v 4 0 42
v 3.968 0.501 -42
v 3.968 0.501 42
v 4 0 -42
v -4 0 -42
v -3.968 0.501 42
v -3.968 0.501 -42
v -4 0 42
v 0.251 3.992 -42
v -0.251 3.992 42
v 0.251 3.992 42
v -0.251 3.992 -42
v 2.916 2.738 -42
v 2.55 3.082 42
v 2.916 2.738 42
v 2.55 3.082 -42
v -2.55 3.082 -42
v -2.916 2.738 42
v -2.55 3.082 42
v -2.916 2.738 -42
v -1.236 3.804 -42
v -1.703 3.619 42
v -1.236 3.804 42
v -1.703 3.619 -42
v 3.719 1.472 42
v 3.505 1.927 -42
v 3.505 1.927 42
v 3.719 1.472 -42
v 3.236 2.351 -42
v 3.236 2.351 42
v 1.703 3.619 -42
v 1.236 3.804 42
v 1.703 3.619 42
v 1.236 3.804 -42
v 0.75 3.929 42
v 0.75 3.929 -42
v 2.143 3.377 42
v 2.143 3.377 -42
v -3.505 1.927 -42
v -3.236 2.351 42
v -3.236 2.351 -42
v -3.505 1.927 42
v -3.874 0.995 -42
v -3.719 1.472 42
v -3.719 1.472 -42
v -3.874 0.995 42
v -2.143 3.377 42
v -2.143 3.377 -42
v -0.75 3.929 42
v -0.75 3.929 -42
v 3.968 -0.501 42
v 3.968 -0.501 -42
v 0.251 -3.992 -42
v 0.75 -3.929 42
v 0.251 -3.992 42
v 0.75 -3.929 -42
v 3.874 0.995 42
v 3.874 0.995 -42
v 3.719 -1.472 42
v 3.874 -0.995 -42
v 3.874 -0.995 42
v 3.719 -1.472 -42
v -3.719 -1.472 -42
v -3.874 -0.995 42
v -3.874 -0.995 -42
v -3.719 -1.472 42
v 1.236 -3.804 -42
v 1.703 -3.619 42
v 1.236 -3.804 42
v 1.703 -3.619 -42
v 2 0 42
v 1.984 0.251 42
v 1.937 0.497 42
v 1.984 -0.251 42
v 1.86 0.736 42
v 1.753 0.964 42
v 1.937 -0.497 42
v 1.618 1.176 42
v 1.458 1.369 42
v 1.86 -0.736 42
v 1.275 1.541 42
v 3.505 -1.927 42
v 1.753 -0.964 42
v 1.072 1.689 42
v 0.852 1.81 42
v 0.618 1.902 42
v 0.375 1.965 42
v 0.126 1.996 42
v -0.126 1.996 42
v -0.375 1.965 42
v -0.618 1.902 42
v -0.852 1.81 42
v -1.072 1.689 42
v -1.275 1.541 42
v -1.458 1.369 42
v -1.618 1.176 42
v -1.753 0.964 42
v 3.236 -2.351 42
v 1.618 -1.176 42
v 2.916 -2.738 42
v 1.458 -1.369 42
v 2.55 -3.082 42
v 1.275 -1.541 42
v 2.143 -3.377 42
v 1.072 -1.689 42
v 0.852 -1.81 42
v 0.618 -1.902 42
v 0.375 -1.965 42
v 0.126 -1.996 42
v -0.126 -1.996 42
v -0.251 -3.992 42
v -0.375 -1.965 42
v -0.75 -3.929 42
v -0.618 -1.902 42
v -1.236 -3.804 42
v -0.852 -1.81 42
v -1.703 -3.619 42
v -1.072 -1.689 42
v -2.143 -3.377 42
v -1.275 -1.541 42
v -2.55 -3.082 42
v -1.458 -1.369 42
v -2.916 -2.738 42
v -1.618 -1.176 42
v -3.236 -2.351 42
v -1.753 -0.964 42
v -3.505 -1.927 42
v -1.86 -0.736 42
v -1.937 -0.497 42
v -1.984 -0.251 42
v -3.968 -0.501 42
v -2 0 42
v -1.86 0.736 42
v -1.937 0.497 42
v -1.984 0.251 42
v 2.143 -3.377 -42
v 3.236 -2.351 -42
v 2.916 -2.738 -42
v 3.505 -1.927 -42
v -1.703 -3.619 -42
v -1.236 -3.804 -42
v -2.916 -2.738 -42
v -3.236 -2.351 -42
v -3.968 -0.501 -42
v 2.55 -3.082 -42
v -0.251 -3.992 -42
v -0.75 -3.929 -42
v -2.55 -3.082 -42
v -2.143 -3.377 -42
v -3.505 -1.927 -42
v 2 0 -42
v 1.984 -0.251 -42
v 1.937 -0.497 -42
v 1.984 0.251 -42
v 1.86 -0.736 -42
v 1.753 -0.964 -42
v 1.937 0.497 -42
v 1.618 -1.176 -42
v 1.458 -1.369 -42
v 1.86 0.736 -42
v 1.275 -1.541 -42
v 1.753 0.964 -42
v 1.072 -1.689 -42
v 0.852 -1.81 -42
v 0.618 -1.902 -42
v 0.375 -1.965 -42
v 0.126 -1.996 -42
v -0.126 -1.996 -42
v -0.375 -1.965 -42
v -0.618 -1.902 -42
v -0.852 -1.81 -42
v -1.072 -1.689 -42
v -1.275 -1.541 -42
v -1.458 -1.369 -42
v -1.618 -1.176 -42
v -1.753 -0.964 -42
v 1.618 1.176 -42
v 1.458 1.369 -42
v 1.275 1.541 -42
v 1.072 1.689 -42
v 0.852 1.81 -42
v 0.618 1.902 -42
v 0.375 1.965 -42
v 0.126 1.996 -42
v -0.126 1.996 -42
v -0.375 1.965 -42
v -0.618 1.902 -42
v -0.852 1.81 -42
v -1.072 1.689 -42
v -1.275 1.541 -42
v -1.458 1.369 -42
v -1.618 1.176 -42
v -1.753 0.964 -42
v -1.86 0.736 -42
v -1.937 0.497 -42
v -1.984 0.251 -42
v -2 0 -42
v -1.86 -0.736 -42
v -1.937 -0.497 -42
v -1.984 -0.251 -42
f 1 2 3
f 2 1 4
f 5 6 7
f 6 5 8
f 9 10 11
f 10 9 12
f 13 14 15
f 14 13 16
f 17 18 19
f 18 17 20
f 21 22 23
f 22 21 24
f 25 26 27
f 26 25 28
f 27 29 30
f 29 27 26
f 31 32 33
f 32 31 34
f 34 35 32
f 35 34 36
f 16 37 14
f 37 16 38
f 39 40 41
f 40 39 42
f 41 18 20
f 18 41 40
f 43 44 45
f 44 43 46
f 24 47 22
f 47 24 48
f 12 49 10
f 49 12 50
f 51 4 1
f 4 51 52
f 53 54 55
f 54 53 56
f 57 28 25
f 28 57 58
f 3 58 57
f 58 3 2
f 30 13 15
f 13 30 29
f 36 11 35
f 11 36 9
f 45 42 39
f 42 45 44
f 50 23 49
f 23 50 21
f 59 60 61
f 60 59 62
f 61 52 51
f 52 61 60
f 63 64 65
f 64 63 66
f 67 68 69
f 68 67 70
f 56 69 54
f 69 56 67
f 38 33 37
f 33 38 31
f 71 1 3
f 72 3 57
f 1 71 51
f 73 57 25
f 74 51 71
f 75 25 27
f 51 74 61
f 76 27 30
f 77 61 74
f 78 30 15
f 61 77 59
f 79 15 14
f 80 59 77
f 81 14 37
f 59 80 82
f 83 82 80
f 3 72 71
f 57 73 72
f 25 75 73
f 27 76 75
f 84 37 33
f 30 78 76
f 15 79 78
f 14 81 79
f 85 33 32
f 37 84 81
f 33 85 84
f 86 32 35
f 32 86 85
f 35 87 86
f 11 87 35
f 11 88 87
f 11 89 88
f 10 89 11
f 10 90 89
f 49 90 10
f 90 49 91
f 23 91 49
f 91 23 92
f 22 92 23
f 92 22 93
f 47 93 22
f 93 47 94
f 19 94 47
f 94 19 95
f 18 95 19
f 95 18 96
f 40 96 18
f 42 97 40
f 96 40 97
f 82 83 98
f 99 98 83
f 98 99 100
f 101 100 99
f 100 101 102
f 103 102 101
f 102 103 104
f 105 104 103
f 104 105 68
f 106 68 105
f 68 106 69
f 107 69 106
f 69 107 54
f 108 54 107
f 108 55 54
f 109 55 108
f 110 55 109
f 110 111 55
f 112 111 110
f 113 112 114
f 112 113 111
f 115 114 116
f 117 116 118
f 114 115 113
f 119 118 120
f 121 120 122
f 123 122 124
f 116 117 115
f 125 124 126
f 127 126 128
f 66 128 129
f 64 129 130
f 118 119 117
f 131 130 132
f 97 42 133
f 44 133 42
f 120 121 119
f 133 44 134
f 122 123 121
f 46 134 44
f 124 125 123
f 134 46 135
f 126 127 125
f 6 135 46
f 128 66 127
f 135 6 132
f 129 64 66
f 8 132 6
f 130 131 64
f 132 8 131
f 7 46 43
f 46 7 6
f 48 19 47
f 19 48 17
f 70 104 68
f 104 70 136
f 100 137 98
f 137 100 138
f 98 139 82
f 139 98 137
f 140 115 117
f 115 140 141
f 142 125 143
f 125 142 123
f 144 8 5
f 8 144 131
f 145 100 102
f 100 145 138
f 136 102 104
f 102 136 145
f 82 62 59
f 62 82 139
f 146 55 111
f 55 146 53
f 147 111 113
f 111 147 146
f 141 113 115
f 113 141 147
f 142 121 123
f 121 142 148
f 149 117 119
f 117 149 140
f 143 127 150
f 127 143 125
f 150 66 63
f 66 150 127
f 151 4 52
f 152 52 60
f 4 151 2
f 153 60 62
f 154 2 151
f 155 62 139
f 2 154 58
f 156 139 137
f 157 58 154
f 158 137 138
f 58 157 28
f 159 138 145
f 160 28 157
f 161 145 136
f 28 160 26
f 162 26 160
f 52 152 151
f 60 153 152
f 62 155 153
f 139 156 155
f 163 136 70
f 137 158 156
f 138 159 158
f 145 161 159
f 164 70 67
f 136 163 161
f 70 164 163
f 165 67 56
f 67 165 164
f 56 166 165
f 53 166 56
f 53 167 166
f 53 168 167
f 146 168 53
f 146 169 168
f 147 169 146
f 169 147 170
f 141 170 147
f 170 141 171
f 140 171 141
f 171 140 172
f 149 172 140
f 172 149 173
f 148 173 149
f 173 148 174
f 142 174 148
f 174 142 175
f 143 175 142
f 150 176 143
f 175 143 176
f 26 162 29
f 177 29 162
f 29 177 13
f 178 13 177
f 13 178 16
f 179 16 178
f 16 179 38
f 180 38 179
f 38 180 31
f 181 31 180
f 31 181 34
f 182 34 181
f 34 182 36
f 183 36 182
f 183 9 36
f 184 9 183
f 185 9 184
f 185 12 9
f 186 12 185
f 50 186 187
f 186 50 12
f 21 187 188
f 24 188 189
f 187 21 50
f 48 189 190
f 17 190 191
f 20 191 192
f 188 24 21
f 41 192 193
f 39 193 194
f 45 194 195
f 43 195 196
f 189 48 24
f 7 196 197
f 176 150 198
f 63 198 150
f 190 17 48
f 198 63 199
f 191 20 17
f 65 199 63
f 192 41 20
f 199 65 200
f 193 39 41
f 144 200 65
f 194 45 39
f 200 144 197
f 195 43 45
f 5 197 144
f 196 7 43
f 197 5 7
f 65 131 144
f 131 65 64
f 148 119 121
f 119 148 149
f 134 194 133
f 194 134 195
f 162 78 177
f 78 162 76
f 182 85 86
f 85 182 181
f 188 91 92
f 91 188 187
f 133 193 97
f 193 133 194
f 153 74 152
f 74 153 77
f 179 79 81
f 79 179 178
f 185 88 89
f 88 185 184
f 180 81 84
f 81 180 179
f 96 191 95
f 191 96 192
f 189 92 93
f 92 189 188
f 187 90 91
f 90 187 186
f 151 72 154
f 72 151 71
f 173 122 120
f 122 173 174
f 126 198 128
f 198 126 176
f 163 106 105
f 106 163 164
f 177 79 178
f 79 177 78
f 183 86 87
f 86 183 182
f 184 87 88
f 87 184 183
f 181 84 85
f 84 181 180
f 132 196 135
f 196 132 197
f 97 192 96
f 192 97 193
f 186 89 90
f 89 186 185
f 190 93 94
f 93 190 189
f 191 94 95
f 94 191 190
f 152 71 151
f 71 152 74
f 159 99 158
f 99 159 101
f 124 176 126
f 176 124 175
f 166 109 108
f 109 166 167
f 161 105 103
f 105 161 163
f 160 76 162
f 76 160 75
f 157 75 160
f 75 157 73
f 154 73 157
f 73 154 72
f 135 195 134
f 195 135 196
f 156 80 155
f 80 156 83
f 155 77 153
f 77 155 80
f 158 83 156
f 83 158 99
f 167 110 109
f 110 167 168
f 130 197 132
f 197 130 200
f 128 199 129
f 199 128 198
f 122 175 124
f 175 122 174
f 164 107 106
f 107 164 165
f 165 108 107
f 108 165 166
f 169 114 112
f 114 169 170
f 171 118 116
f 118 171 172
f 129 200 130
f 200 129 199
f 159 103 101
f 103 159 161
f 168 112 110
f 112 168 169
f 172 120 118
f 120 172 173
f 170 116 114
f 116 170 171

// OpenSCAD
$fn = 50;


difference() {
	union() {
		translate(v = [0, 0, -42.0000000000]) {
			cylinder(h = 84, r = 4.0000000000);
		}
	}
	union() {
		translate(v = [0, 0, -100.0000000000]) {
			cylinder(h = 200, r = 2.0000000000);
		}
	}
}
